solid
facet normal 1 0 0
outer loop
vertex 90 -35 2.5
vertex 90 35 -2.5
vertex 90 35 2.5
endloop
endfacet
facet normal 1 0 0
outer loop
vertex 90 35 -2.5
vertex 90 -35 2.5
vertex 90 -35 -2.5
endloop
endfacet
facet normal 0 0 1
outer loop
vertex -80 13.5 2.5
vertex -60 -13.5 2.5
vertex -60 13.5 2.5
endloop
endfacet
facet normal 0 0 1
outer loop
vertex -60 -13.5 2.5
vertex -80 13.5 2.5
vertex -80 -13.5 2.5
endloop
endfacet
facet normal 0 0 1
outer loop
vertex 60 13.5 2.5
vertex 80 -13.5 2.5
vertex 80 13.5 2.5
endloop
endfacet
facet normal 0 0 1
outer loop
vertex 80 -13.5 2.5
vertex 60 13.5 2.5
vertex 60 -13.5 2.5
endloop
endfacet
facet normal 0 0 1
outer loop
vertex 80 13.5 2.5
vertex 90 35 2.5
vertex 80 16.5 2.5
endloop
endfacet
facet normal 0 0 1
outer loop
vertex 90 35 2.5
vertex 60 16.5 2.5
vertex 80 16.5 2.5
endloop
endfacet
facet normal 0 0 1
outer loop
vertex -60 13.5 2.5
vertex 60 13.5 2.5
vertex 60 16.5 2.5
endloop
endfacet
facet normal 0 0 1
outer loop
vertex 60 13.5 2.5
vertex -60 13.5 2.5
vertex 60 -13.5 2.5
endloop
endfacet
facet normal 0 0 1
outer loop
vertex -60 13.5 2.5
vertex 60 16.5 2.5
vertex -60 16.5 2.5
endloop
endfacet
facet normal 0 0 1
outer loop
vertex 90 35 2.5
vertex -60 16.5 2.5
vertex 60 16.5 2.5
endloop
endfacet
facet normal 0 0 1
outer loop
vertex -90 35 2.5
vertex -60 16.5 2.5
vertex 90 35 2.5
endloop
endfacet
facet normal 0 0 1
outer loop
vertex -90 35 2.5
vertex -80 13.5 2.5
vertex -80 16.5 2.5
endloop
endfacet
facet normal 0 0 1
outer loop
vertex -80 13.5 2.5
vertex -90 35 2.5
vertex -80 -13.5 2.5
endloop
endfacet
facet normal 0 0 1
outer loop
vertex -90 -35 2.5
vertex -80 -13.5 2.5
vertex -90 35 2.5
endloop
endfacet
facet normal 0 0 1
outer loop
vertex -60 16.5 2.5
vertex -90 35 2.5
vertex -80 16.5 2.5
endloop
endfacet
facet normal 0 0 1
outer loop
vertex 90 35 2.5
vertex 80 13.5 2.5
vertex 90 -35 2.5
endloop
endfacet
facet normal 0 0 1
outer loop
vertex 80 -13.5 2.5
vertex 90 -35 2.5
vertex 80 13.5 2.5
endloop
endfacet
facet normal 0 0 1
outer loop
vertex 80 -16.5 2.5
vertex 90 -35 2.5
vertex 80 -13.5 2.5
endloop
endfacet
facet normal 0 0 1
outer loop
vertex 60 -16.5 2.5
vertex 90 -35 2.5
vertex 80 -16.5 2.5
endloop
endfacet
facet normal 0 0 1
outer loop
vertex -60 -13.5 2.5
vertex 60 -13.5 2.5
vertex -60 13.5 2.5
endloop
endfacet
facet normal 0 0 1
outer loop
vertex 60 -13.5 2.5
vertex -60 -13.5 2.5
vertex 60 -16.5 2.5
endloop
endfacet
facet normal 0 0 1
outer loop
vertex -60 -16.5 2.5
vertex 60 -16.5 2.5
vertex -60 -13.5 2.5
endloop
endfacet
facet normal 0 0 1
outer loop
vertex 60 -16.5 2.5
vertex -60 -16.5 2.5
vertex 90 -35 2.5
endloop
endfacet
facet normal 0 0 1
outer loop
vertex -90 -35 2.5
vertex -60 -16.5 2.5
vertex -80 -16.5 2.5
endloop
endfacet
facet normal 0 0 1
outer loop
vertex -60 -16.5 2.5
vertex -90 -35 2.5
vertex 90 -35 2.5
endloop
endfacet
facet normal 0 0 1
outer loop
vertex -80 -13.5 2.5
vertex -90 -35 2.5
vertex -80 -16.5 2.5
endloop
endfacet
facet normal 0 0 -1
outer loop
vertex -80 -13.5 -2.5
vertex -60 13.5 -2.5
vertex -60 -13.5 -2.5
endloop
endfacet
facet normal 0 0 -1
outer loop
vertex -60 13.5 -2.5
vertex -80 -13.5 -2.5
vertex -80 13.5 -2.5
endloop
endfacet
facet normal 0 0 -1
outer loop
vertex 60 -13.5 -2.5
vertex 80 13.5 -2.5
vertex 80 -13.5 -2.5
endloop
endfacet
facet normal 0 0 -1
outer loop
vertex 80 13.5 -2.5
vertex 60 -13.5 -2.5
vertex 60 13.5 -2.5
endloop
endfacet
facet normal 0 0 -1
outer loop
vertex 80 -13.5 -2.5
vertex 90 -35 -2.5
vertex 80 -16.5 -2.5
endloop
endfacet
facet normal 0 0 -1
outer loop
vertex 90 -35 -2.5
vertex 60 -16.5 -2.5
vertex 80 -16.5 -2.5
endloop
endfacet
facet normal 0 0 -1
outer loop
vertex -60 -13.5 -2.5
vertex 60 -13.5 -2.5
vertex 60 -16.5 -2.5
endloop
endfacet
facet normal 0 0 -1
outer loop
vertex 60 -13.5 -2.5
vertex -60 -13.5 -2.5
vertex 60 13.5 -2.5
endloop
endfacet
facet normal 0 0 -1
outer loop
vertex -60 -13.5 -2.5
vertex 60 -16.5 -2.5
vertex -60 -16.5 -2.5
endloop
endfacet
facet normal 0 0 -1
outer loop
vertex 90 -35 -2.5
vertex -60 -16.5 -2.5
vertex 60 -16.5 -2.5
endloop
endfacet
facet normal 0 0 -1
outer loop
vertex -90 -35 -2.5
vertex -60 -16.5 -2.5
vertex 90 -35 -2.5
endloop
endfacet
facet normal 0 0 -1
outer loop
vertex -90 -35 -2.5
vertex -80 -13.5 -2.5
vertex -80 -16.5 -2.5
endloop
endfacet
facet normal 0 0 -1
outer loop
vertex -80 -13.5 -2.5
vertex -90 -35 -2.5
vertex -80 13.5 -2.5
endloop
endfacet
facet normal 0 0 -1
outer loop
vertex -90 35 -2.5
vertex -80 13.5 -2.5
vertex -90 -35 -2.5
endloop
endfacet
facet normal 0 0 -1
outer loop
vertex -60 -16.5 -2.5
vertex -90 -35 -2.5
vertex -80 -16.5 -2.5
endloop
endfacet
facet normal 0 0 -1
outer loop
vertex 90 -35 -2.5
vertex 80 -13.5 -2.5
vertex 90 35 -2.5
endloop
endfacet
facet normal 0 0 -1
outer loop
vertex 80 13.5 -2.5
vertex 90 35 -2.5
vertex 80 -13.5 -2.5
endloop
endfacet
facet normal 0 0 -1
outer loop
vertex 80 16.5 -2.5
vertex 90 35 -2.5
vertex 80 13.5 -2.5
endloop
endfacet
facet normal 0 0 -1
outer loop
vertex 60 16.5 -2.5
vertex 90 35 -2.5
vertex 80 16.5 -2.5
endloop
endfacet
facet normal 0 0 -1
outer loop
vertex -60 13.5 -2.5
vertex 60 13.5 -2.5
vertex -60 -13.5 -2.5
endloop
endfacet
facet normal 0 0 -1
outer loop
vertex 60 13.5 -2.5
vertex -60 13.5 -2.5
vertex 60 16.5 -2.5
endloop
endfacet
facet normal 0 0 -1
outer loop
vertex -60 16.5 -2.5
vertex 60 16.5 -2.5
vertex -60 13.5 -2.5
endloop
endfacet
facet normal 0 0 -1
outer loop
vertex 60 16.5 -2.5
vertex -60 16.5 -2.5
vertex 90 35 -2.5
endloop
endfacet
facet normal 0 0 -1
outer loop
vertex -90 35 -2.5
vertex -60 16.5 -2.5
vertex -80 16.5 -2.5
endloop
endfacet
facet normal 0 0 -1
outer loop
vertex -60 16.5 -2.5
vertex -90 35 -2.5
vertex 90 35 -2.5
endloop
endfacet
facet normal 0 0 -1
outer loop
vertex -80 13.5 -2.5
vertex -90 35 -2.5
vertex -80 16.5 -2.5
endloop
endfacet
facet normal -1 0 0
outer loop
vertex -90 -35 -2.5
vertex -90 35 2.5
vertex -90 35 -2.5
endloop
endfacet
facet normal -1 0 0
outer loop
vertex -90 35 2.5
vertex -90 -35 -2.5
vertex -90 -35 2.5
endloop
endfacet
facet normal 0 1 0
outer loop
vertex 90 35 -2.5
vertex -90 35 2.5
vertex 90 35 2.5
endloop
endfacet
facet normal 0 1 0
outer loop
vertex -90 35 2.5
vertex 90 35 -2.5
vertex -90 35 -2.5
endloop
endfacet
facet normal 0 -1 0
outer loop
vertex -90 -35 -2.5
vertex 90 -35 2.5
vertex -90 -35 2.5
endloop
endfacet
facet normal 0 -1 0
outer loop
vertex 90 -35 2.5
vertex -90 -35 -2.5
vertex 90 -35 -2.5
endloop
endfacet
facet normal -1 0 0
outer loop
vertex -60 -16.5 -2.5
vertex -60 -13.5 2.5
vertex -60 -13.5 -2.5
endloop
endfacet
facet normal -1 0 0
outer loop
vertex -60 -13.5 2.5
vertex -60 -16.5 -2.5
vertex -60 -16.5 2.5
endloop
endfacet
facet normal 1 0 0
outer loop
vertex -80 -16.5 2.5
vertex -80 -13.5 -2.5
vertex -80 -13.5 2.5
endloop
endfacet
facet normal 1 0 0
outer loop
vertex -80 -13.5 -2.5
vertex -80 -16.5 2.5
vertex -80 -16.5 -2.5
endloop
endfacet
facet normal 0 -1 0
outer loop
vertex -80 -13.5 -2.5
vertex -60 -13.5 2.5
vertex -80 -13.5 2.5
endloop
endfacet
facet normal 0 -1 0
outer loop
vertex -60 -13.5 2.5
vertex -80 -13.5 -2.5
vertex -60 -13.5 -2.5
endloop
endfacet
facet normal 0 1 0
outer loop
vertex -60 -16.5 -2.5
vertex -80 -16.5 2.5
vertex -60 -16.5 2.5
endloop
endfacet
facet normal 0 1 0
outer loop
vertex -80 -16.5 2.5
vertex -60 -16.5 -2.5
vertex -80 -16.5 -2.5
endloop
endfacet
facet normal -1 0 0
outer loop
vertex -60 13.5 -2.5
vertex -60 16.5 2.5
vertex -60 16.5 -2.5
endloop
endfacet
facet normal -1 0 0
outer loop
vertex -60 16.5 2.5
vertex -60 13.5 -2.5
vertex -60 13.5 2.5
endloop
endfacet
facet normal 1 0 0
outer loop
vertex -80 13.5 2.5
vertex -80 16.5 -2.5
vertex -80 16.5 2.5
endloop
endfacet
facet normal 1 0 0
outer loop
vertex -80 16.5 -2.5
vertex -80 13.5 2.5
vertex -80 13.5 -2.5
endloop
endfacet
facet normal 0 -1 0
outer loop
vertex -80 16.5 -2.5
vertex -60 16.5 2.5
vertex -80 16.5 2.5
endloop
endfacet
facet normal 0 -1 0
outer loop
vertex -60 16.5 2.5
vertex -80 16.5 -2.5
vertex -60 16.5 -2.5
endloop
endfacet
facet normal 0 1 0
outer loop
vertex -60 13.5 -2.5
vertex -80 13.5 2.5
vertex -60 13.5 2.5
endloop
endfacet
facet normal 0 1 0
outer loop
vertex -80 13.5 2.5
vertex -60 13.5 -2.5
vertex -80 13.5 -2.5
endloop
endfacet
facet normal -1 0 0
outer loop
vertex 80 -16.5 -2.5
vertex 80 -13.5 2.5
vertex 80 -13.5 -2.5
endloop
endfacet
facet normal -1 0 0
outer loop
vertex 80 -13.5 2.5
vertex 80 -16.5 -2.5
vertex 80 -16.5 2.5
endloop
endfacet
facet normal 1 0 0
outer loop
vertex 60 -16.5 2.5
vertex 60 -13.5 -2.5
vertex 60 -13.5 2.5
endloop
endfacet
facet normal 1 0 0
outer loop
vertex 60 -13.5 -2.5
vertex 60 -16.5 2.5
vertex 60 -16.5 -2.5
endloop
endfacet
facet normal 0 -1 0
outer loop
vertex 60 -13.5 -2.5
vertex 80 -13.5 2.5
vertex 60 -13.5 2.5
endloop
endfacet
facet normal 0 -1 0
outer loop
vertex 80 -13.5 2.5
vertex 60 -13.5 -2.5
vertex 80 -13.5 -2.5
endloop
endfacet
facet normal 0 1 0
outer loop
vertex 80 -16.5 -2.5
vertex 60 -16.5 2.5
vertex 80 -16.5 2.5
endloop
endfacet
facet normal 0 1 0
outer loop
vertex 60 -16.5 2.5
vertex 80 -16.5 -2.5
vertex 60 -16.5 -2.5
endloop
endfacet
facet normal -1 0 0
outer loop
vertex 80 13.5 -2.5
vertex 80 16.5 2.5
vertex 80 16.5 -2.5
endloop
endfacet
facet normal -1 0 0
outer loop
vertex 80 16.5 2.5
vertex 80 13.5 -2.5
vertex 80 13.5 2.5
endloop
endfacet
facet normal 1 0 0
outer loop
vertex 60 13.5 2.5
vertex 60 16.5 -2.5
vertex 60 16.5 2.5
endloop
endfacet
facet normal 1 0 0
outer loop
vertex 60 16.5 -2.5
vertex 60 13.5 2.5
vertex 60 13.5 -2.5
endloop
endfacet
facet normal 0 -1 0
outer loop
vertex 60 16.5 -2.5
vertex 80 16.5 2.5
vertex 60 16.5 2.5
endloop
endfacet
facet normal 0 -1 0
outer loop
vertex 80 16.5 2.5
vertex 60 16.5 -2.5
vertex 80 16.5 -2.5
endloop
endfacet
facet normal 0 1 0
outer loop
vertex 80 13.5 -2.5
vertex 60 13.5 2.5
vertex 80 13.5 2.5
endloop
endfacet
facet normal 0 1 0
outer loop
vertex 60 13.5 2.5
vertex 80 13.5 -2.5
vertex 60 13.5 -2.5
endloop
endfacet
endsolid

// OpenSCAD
// ========================================
// a 18 x 7 x 0.5 cm plate with four 2 x 0.3 cm slots
// NeuroCAD canonical IR; dimensions are millimetres
// ========================================
$fn = 48;

difference() {
  cube(size=[180, 70, 5], center=true);
  translate([-70, -15, 0]) {
    cube(size=[20, 3, 7], center=true);
  }
  translate([-70, 15, 0]) {
    cube(size=[20, 3, 7], center=true);
  }
  translate([70, -15, 0]) {
    cube(size=[20, 3, 7], center=true);
  }
  translate([70, 15, 0]) {
    cube(size=[20, 3, 7], center=true);
  }
}
